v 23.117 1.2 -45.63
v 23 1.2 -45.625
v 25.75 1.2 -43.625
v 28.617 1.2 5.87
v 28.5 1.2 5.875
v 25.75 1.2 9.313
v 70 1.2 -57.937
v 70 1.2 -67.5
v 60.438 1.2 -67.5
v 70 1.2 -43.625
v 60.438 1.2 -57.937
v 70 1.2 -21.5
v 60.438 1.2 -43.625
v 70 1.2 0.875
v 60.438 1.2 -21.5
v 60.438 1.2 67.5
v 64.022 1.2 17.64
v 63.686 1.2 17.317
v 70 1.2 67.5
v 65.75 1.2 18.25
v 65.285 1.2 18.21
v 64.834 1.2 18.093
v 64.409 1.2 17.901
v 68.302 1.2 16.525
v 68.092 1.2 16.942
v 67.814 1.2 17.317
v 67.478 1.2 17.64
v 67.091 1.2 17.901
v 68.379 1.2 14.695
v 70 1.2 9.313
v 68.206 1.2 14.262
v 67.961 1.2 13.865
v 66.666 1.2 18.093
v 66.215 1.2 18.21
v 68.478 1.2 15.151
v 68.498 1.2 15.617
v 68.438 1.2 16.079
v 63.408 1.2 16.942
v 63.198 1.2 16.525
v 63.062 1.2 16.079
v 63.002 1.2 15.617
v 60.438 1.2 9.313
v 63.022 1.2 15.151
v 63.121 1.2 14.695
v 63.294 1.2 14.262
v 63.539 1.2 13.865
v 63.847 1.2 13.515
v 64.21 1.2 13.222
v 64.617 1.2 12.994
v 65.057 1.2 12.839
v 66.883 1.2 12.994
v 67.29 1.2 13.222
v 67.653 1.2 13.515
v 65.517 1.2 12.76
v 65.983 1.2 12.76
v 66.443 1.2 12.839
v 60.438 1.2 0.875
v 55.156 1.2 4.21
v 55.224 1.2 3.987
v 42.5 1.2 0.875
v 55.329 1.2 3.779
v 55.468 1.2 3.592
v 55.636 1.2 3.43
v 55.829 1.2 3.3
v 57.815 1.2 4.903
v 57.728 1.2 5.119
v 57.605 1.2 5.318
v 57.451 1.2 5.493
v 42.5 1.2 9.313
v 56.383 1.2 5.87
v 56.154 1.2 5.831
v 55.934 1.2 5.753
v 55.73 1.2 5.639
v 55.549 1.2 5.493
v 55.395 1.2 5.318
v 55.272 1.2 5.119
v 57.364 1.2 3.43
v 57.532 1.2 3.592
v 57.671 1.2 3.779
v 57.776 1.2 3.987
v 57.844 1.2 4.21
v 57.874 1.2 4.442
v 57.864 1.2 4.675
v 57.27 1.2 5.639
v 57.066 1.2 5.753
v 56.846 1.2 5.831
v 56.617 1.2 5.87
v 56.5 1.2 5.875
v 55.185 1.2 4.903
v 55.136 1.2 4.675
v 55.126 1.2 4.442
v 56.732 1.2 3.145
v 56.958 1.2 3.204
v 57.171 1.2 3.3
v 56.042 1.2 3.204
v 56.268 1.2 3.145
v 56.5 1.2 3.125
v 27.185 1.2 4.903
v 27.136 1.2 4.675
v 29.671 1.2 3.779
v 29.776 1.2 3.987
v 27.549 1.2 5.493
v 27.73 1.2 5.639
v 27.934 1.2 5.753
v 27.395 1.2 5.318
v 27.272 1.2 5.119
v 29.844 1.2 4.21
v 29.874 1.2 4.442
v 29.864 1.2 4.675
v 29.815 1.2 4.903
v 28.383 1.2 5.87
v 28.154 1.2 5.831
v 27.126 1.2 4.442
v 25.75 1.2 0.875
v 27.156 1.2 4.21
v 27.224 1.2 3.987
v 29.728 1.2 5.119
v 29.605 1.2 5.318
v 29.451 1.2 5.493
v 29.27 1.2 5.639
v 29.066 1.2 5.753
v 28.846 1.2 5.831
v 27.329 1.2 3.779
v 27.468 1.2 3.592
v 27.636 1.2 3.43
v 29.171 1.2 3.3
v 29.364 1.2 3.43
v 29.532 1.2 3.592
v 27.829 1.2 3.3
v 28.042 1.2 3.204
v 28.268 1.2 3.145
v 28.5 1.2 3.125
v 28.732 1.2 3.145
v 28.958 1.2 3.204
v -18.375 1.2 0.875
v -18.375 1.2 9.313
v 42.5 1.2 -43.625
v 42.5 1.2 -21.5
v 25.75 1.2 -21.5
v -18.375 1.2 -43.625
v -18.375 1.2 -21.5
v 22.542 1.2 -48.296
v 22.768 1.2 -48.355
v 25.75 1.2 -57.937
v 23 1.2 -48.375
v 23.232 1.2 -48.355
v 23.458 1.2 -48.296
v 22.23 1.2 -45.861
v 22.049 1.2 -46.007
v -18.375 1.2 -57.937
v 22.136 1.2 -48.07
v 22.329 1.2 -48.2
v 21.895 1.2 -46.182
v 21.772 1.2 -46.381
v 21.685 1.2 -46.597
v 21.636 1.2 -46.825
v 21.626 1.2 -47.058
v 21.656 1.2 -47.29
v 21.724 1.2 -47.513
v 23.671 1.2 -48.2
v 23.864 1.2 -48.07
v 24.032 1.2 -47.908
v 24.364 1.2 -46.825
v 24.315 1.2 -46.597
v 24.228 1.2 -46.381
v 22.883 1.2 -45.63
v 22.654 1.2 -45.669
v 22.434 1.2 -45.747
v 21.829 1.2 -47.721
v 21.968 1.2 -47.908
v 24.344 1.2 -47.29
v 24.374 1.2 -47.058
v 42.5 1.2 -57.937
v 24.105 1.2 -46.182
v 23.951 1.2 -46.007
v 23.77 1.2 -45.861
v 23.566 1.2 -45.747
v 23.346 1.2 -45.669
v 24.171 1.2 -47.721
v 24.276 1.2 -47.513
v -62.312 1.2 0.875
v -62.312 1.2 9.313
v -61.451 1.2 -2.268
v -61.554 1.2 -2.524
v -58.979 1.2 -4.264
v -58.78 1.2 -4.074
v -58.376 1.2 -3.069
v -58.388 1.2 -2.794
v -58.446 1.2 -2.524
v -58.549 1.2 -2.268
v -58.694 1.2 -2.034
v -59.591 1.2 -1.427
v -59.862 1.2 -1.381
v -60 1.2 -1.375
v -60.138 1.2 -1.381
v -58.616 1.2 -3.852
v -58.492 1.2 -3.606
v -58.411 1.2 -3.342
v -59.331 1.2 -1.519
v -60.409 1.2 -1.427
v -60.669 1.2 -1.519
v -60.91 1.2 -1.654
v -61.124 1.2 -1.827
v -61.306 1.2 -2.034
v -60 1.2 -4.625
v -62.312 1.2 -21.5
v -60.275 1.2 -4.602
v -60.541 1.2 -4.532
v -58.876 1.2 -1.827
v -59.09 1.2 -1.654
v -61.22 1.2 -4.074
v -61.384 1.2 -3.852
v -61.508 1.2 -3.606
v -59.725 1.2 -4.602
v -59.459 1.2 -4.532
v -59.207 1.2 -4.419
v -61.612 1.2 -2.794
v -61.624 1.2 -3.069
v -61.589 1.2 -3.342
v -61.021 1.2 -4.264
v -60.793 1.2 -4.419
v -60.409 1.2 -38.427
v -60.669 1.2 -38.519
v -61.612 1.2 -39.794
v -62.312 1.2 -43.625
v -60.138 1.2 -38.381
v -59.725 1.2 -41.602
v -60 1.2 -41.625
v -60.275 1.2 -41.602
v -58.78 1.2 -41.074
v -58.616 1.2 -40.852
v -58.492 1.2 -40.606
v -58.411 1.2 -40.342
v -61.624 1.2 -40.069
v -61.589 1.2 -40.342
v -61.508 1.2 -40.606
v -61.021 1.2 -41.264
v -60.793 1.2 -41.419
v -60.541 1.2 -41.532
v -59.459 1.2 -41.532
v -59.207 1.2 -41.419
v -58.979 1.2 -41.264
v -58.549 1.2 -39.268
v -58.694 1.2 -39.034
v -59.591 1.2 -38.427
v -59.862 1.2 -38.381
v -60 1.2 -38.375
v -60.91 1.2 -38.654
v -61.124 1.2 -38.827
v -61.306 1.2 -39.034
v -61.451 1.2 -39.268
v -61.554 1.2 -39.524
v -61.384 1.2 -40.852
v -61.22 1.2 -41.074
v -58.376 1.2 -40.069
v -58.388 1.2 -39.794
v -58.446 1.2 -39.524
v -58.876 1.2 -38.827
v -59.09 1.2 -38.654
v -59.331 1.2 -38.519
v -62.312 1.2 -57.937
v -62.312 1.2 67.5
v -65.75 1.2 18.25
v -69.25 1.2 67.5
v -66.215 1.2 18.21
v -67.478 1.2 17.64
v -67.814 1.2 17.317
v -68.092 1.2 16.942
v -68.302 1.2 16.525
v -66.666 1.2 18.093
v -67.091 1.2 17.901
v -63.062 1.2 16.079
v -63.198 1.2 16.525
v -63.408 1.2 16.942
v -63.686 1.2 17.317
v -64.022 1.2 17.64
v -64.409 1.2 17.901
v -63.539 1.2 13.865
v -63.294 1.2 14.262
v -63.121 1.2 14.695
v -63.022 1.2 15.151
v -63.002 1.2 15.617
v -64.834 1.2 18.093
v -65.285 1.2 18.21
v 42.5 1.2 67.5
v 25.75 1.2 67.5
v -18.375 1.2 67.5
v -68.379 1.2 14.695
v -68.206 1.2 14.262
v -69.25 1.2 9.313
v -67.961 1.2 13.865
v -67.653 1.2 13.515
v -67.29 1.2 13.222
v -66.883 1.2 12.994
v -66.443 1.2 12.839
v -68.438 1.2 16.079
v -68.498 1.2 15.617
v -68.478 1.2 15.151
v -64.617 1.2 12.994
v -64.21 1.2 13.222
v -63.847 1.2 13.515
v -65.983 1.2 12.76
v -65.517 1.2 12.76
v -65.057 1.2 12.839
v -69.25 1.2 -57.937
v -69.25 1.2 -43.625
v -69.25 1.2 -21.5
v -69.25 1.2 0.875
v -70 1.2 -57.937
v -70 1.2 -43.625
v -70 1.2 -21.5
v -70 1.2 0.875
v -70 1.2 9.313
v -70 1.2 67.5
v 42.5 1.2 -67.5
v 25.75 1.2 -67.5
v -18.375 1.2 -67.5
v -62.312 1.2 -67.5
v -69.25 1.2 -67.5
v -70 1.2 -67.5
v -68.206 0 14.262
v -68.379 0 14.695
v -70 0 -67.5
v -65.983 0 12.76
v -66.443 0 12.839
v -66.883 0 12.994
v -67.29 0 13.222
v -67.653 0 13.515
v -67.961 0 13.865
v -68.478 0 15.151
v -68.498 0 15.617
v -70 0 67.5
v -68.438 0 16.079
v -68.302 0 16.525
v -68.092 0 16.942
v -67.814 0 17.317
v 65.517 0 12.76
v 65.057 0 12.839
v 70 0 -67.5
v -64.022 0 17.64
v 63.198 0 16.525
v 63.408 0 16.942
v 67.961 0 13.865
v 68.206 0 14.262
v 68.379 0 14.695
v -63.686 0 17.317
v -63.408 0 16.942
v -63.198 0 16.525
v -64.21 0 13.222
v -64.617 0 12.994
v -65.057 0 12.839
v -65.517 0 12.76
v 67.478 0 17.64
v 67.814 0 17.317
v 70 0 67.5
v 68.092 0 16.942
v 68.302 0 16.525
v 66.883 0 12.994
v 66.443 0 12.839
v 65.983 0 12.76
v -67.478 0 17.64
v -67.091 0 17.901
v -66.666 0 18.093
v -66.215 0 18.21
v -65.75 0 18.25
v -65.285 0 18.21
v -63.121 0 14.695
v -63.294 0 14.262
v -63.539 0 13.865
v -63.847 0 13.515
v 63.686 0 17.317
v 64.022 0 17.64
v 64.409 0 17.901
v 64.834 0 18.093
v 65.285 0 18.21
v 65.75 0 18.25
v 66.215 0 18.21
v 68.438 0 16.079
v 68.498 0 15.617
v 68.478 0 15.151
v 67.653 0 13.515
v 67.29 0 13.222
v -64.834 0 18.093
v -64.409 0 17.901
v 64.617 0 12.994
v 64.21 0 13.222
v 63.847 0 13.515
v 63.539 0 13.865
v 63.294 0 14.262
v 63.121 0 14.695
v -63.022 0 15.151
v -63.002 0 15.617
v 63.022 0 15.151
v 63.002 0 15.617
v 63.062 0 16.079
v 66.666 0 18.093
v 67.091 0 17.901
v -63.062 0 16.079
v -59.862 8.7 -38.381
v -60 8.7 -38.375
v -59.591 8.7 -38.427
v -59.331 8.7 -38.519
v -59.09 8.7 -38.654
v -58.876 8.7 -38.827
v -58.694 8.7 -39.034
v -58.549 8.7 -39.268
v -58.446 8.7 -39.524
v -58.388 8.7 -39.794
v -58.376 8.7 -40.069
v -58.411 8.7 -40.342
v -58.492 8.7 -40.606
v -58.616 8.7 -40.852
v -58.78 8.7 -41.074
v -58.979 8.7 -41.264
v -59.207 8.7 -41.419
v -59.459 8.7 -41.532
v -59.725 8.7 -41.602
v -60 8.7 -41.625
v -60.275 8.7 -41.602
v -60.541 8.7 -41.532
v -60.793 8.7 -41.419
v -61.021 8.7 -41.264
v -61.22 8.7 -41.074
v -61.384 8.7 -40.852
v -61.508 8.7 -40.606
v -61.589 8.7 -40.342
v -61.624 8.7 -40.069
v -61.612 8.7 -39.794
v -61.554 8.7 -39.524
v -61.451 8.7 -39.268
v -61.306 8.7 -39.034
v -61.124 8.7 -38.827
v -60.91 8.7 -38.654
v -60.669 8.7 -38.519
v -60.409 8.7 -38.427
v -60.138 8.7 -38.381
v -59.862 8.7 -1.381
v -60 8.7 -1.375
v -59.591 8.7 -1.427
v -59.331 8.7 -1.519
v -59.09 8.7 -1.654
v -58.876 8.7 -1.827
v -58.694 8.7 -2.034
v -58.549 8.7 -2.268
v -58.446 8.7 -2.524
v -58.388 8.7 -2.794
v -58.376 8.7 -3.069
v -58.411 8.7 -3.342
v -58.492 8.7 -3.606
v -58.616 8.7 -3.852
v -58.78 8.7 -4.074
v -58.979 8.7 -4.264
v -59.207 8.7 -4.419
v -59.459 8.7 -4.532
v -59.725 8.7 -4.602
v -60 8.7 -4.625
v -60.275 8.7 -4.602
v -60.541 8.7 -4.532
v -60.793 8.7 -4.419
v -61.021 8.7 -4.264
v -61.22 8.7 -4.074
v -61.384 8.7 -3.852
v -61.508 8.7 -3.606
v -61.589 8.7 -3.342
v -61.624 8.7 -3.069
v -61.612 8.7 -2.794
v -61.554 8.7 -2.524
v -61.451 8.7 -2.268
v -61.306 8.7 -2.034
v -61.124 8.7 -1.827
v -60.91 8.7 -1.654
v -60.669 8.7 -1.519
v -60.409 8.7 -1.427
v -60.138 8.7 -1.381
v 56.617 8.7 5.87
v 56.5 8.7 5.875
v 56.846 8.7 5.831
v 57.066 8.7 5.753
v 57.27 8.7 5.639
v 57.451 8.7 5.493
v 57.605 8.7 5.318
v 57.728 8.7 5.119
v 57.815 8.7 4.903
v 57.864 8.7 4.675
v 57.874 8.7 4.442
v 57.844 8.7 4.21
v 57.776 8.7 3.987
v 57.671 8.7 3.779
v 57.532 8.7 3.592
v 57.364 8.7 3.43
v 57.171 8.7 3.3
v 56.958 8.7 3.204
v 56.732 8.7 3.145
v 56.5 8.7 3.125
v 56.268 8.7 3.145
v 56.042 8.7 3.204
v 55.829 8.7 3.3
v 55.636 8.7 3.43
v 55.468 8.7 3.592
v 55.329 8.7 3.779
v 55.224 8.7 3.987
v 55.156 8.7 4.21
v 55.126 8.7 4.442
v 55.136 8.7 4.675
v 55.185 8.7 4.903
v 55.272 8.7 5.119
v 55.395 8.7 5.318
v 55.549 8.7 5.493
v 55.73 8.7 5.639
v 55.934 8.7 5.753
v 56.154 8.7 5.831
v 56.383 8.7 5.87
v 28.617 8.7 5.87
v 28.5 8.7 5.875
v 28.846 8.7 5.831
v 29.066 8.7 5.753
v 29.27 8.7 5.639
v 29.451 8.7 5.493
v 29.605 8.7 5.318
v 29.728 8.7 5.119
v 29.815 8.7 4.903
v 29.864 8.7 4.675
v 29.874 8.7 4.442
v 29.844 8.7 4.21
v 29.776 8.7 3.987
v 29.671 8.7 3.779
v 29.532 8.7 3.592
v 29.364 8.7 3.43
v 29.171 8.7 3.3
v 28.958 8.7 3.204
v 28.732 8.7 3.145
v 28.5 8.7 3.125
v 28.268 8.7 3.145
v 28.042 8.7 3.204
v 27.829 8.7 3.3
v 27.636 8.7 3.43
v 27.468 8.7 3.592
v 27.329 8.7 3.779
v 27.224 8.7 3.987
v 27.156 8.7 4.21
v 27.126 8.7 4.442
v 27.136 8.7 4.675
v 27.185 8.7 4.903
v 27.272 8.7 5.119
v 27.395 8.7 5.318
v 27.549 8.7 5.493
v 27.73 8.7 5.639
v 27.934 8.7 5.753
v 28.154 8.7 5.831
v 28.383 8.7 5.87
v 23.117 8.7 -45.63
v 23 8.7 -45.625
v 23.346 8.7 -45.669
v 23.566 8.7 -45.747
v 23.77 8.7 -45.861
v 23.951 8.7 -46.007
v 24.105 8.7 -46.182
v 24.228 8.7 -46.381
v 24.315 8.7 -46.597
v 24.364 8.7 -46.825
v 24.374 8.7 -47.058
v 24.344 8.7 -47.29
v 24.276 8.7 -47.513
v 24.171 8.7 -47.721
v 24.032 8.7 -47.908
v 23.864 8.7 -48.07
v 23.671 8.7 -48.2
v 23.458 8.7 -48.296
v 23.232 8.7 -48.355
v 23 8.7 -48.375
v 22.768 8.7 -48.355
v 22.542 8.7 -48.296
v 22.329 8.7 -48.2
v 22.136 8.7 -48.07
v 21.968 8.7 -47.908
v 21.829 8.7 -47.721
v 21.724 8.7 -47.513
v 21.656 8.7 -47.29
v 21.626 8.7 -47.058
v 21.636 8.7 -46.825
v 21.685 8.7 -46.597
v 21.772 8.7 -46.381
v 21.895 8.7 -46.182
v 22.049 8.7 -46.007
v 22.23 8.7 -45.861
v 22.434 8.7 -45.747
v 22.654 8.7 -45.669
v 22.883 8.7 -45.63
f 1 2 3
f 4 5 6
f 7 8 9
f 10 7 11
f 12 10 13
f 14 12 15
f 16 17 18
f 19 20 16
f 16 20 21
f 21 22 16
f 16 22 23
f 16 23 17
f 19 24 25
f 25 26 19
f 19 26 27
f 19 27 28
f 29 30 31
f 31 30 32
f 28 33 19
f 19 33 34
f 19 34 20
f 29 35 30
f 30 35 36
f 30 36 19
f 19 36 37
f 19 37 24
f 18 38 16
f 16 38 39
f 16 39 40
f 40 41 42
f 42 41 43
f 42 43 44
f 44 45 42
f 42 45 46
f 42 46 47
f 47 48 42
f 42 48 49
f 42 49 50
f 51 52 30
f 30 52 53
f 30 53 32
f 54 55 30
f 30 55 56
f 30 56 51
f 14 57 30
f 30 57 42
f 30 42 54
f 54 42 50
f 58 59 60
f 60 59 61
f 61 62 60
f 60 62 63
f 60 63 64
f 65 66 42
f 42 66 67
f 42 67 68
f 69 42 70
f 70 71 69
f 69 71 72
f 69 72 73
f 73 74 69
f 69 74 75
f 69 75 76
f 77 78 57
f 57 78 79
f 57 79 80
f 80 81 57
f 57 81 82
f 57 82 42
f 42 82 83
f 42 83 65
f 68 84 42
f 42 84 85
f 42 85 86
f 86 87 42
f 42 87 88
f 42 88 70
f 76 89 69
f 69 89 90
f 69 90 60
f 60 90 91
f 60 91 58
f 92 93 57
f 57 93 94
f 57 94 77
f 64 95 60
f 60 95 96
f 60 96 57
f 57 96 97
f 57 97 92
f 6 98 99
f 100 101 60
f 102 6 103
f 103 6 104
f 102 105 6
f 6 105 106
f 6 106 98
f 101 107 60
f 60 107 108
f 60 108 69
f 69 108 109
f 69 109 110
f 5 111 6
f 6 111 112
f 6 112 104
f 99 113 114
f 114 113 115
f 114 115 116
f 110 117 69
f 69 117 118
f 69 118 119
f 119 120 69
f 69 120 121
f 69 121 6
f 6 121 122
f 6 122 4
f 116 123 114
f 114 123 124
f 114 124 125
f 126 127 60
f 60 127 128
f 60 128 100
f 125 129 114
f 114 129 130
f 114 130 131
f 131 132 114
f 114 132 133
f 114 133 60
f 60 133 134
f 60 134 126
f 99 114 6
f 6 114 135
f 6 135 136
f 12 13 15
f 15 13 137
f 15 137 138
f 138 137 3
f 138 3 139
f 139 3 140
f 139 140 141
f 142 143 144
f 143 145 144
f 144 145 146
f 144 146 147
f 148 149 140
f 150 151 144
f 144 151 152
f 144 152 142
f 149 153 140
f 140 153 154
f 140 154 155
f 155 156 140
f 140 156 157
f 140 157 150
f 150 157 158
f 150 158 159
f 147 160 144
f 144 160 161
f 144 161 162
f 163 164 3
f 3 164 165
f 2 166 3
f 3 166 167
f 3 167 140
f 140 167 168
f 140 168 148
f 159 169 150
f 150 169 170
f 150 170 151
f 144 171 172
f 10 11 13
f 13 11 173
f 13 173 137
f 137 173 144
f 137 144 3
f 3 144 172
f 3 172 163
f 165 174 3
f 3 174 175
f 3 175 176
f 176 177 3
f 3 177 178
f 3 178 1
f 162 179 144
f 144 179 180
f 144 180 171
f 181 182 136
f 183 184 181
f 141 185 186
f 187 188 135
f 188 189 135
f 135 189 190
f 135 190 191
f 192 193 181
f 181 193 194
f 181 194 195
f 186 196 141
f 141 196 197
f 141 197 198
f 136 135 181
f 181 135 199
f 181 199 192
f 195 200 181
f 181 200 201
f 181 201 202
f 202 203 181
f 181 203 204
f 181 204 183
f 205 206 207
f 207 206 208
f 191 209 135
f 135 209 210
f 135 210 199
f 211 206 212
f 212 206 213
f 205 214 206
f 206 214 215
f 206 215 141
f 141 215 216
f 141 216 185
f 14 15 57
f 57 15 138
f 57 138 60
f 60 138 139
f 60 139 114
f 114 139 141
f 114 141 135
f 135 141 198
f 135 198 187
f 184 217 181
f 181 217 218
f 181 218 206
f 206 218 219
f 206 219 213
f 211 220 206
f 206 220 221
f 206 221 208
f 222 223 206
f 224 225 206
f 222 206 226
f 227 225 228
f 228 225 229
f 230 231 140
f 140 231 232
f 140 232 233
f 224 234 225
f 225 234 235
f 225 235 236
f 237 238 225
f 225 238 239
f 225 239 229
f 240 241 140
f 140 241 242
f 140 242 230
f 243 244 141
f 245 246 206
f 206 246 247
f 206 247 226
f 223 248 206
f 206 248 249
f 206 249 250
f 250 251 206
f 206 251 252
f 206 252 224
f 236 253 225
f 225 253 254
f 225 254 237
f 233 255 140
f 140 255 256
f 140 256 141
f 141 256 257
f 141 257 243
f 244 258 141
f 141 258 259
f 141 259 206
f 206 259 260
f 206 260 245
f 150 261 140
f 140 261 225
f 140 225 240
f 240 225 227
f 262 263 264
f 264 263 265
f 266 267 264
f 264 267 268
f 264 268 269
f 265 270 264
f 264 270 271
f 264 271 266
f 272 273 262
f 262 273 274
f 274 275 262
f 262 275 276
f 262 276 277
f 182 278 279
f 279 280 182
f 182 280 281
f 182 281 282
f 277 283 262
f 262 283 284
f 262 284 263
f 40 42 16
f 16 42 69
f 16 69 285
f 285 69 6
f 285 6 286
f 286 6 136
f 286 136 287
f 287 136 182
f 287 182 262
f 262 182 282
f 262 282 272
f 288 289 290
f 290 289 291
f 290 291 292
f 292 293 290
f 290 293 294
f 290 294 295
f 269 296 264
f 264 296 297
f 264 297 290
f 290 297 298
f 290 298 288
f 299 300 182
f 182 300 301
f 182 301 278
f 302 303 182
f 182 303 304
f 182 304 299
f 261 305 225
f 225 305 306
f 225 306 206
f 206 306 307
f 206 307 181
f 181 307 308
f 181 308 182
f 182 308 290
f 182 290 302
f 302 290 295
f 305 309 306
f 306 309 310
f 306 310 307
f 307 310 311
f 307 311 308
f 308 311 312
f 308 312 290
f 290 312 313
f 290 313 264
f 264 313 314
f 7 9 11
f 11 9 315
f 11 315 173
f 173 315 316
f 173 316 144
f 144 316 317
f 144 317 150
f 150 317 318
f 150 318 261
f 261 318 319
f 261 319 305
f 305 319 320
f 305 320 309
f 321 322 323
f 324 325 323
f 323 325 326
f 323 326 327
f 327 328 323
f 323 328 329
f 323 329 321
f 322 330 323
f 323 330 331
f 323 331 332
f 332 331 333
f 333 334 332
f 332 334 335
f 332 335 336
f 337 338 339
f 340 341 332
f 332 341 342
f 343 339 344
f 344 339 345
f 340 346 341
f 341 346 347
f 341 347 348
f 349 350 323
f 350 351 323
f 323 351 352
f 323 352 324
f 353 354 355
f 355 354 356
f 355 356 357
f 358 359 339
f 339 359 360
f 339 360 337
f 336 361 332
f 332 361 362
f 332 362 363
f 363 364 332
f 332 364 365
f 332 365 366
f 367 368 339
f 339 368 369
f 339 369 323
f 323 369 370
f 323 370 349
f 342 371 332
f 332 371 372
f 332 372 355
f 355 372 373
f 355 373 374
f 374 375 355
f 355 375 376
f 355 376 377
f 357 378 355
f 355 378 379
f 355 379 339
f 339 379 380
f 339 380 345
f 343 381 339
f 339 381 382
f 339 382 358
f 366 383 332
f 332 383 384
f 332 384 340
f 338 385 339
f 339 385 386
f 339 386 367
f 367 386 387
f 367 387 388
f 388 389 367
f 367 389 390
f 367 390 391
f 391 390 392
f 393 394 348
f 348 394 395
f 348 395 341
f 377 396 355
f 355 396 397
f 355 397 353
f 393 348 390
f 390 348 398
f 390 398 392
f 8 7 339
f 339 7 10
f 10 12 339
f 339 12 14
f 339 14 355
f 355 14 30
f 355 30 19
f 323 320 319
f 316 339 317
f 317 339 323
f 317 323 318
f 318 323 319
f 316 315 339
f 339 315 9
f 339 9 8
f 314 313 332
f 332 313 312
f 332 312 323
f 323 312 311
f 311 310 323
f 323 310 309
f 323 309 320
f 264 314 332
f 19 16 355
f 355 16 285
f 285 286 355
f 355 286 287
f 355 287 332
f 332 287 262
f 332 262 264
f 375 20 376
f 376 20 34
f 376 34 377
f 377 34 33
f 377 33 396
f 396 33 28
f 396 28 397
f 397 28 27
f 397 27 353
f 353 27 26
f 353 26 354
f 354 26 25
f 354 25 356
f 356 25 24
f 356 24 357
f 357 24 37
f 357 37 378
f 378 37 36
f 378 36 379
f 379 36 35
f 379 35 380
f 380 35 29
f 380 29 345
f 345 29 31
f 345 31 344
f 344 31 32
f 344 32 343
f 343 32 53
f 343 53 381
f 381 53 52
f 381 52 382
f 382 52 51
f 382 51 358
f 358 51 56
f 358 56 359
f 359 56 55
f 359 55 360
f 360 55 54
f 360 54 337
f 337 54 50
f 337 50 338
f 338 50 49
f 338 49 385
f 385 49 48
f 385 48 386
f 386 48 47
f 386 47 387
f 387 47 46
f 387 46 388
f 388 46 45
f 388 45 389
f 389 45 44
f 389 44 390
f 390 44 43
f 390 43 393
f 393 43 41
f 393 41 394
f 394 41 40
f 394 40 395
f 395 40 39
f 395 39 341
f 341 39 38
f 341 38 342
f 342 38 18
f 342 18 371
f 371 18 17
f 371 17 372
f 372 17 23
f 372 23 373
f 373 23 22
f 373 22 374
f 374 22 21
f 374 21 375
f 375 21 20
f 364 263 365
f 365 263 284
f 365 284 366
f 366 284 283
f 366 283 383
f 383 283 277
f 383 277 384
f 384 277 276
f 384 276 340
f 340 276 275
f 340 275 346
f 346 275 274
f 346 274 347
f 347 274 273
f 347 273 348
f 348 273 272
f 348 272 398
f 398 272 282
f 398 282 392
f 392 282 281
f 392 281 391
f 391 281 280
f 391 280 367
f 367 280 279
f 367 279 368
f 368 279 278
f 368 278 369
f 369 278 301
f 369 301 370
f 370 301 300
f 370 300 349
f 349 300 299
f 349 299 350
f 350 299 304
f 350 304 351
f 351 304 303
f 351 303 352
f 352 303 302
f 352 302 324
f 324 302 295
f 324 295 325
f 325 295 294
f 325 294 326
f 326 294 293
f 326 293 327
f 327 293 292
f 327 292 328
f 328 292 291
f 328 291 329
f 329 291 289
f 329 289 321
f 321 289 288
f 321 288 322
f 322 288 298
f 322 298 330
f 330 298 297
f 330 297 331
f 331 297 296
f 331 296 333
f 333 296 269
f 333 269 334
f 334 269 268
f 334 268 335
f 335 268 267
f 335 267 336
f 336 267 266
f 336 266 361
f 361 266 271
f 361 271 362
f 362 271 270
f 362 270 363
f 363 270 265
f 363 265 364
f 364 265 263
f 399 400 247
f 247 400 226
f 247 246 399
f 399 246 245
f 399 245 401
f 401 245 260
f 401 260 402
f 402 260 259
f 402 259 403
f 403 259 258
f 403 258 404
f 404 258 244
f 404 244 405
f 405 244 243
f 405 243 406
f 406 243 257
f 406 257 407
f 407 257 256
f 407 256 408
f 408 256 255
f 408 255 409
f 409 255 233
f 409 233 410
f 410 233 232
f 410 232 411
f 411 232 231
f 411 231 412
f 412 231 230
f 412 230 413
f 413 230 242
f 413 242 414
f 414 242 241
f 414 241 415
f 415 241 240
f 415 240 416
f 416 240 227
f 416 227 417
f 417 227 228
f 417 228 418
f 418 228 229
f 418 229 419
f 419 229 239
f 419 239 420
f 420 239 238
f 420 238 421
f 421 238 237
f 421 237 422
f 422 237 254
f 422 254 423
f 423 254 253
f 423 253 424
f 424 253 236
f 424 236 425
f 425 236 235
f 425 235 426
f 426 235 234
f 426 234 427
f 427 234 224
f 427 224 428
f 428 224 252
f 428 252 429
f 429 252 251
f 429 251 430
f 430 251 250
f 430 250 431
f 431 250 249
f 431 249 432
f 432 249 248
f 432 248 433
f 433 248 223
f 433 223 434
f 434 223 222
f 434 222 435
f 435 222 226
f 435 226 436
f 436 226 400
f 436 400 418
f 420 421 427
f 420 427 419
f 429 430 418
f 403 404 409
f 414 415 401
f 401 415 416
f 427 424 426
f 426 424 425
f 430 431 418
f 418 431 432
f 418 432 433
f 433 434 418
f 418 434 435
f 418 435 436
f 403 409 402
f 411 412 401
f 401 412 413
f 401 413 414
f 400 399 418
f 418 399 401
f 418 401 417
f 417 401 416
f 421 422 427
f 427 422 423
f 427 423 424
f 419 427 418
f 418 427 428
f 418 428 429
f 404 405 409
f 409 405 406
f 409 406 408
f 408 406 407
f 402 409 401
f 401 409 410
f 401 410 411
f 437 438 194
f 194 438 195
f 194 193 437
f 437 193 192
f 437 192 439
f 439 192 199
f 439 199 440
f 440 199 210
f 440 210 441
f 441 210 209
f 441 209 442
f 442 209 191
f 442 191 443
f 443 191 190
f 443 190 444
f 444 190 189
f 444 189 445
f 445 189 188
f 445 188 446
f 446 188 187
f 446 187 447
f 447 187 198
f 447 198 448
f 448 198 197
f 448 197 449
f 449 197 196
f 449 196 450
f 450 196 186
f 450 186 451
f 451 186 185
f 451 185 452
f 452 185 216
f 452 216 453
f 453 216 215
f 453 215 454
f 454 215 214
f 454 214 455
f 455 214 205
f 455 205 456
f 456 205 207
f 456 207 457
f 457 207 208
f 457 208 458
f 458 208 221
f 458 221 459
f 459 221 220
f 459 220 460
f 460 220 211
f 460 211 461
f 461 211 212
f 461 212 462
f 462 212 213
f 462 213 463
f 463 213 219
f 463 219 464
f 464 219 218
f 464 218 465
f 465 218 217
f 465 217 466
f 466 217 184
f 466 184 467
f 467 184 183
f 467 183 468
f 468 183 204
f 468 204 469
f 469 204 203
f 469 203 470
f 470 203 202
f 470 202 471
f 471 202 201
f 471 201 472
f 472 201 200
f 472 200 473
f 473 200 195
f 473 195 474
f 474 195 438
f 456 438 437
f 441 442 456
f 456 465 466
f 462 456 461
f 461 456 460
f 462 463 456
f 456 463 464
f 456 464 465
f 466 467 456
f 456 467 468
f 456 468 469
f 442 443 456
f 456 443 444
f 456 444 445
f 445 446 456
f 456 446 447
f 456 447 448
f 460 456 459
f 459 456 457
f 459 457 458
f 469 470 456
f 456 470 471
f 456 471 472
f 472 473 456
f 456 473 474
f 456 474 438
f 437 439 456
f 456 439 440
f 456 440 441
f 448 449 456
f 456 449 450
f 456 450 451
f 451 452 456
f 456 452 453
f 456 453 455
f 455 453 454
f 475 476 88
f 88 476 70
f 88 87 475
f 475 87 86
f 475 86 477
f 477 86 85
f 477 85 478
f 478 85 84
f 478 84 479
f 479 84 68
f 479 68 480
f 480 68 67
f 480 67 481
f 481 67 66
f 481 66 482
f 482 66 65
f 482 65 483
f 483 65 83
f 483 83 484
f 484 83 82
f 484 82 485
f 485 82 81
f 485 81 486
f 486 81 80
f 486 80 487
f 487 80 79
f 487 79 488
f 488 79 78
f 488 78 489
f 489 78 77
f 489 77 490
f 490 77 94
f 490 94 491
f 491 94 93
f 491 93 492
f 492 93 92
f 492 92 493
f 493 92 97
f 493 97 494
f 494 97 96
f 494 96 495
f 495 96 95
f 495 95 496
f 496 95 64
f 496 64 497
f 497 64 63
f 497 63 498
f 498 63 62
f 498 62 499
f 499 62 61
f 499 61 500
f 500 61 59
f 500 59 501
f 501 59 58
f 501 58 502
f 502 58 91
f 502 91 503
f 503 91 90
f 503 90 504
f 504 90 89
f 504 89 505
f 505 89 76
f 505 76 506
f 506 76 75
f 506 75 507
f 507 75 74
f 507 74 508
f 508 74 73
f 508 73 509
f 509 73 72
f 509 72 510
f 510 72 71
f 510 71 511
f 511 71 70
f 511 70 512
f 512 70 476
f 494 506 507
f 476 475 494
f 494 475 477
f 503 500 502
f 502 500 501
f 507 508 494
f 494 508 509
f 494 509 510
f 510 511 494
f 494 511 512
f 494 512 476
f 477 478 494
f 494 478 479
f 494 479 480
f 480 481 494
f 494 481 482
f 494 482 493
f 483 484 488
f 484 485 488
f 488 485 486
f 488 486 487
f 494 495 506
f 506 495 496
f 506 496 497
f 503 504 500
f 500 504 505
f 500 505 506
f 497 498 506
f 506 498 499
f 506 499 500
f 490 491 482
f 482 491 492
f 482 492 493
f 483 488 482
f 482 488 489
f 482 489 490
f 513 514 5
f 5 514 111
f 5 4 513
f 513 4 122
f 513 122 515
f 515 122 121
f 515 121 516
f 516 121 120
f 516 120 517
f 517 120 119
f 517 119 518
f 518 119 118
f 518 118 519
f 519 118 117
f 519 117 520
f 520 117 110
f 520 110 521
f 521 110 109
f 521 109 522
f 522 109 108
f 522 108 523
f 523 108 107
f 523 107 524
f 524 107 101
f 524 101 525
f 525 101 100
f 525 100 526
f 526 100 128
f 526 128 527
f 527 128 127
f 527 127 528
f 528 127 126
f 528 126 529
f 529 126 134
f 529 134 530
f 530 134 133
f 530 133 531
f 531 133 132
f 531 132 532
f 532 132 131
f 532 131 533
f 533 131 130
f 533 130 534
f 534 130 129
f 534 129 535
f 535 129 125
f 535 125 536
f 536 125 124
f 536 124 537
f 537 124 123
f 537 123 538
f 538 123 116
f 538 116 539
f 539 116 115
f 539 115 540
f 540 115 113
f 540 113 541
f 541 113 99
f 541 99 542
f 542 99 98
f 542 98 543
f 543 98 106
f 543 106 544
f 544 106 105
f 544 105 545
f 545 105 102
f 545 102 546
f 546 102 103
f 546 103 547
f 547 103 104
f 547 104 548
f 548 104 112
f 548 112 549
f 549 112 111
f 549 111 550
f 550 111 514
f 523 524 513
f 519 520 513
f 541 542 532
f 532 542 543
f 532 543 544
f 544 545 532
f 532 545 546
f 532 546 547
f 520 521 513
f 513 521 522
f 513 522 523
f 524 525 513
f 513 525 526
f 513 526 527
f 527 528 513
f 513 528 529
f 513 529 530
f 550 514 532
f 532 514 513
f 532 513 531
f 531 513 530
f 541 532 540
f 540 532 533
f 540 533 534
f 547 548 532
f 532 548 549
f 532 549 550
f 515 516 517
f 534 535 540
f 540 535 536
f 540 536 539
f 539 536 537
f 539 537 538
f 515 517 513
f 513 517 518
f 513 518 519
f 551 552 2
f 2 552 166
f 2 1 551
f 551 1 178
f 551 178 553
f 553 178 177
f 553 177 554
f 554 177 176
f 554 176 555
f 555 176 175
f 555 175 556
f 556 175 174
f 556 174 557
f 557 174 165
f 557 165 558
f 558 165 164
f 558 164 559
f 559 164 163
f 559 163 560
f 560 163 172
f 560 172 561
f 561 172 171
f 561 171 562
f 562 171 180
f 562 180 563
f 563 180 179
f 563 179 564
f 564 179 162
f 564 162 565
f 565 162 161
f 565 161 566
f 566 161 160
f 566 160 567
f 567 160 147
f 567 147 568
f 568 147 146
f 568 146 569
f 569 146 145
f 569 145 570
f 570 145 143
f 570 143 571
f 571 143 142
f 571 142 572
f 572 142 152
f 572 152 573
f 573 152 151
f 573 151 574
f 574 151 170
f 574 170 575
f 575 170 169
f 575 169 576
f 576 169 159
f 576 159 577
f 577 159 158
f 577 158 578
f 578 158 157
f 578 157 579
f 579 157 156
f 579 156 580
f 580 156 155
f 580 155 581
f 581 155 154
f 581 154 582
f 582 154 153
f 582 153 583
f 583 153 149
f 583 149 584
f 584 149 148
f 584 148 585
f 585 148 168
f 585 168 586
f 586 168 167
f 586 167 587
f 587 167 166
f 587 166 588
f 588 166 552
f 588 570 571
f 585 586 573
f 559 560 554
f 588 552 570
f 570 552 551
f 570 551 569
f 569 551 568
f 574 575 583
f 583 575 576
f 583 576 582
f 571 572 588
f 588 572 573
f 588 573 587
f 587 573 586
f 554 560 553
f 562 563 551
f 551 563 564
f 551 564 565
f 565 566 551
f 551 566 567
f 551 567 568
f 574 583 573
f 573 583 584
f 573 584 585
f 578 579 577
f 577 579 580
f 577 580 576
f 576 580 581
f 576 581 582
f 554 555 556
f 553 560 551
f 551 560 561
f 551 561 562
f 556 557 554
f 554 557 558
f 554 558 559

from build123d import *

# Parameters (mm, degrees)
SKETCH1_W           = 140
SKETCH1_H           = 135
BOSS_EXTRUDE1_DEPTH = 1.2
CUT_EXTRUDE1_REACH  = 99.251
SKETCH2_R           = 2.75
SKETCH3_R           = 1.625
BOSS_EXTRUDE2_DEPTH = 7.5
SKETCH4_R           = 1.375
BOSS_EXTRUDE3_DEPTH = 7.5


with BuildPart() as part:
    # Sketch1 → Boss-Extrude1 (new body)
    with BuildSketch(Plane(origin=(0, 0, 0), x_dir=(1, 0, 0), z_dir=(0, 1, 0))):
        Rectangle(SKETCH1_W, SKETCH1_H)
    extrude(amount=BOSS_EXTRUDE1_DEPTH)

    # Sketch2 → Cut-Extrude1 (cut, up to next)
    with BuildSketch(Plane(origin=(0, 1.2, 0), x_dir=(1, 0, 0), z_dir=(0, 1, 0)), mode=Mode.PRIVATE) as cut_extrude1_sk1:
        with Locations(Location((65.75, -15.5, 0), (0, 0, 270))):
            Circle(SKETCH2_R)
    cut_extrude1_tool1 = extrude(cut_extrude1_sk1.sketch, amount=-CUT_EXTRUDE1_REACH, mode=Mode.PRIVATE) & part.part
    cut_extrude1 = cut_extrude1_tool1.solids().sort_by_distance((65.75, 1.2, 15.5))[0]
    add(cut_extrude1, mode=Mode.SUBTRACT)

    # Mirror1: Cut-Extrude1 across plane
    add(cut_extrude1.mirror(Plane(origin=(0, 0, 0), x_dir=(0, 0, 1), z_dir=(1, 0, 0))), mode=Mode.SUBTRACT)

    # Sketch3 → Boss-Extrude2 (add)
    with BuildSketch(Plane(origin=(0, 1.2, 0), x_dir=(1, 0, 0), z_dir=(0, 1, 0))):
        with Locations(Location((-60, 40, 0), (0, 0, 270))):
            Circle(SKETCH3_R)
        with Locations(Location((-60, 3, 0), (0, 0, 270))):
            Circle(SKETCH3_R)
    extrude(amount=BOSS_EXTRUDE2_DEPTH)

    # Sketch4 → Boss-Extrude3 (add)
    with BuildSketch(Plane(origin=(0, 1.2, 0), x_dir=(1, 0, 0), z_dir=(0, 1, 0))):
        with Locations(Location((56.5, -4.5, 0), (0, 0, 270))):
            Circle(SKETCH4_R)
        with Locations(Location((28.5, -4.5, 0), (0, 0, 270))):
            Circle(SKETCH4_R)
        with Locations(Location((23, 47, 0), (0, 0, 270))):
            Circle(SKETCH4_R)
    extrude(amount=BOSS_EXTRUDE3_DEPTH)


solid = part.part
